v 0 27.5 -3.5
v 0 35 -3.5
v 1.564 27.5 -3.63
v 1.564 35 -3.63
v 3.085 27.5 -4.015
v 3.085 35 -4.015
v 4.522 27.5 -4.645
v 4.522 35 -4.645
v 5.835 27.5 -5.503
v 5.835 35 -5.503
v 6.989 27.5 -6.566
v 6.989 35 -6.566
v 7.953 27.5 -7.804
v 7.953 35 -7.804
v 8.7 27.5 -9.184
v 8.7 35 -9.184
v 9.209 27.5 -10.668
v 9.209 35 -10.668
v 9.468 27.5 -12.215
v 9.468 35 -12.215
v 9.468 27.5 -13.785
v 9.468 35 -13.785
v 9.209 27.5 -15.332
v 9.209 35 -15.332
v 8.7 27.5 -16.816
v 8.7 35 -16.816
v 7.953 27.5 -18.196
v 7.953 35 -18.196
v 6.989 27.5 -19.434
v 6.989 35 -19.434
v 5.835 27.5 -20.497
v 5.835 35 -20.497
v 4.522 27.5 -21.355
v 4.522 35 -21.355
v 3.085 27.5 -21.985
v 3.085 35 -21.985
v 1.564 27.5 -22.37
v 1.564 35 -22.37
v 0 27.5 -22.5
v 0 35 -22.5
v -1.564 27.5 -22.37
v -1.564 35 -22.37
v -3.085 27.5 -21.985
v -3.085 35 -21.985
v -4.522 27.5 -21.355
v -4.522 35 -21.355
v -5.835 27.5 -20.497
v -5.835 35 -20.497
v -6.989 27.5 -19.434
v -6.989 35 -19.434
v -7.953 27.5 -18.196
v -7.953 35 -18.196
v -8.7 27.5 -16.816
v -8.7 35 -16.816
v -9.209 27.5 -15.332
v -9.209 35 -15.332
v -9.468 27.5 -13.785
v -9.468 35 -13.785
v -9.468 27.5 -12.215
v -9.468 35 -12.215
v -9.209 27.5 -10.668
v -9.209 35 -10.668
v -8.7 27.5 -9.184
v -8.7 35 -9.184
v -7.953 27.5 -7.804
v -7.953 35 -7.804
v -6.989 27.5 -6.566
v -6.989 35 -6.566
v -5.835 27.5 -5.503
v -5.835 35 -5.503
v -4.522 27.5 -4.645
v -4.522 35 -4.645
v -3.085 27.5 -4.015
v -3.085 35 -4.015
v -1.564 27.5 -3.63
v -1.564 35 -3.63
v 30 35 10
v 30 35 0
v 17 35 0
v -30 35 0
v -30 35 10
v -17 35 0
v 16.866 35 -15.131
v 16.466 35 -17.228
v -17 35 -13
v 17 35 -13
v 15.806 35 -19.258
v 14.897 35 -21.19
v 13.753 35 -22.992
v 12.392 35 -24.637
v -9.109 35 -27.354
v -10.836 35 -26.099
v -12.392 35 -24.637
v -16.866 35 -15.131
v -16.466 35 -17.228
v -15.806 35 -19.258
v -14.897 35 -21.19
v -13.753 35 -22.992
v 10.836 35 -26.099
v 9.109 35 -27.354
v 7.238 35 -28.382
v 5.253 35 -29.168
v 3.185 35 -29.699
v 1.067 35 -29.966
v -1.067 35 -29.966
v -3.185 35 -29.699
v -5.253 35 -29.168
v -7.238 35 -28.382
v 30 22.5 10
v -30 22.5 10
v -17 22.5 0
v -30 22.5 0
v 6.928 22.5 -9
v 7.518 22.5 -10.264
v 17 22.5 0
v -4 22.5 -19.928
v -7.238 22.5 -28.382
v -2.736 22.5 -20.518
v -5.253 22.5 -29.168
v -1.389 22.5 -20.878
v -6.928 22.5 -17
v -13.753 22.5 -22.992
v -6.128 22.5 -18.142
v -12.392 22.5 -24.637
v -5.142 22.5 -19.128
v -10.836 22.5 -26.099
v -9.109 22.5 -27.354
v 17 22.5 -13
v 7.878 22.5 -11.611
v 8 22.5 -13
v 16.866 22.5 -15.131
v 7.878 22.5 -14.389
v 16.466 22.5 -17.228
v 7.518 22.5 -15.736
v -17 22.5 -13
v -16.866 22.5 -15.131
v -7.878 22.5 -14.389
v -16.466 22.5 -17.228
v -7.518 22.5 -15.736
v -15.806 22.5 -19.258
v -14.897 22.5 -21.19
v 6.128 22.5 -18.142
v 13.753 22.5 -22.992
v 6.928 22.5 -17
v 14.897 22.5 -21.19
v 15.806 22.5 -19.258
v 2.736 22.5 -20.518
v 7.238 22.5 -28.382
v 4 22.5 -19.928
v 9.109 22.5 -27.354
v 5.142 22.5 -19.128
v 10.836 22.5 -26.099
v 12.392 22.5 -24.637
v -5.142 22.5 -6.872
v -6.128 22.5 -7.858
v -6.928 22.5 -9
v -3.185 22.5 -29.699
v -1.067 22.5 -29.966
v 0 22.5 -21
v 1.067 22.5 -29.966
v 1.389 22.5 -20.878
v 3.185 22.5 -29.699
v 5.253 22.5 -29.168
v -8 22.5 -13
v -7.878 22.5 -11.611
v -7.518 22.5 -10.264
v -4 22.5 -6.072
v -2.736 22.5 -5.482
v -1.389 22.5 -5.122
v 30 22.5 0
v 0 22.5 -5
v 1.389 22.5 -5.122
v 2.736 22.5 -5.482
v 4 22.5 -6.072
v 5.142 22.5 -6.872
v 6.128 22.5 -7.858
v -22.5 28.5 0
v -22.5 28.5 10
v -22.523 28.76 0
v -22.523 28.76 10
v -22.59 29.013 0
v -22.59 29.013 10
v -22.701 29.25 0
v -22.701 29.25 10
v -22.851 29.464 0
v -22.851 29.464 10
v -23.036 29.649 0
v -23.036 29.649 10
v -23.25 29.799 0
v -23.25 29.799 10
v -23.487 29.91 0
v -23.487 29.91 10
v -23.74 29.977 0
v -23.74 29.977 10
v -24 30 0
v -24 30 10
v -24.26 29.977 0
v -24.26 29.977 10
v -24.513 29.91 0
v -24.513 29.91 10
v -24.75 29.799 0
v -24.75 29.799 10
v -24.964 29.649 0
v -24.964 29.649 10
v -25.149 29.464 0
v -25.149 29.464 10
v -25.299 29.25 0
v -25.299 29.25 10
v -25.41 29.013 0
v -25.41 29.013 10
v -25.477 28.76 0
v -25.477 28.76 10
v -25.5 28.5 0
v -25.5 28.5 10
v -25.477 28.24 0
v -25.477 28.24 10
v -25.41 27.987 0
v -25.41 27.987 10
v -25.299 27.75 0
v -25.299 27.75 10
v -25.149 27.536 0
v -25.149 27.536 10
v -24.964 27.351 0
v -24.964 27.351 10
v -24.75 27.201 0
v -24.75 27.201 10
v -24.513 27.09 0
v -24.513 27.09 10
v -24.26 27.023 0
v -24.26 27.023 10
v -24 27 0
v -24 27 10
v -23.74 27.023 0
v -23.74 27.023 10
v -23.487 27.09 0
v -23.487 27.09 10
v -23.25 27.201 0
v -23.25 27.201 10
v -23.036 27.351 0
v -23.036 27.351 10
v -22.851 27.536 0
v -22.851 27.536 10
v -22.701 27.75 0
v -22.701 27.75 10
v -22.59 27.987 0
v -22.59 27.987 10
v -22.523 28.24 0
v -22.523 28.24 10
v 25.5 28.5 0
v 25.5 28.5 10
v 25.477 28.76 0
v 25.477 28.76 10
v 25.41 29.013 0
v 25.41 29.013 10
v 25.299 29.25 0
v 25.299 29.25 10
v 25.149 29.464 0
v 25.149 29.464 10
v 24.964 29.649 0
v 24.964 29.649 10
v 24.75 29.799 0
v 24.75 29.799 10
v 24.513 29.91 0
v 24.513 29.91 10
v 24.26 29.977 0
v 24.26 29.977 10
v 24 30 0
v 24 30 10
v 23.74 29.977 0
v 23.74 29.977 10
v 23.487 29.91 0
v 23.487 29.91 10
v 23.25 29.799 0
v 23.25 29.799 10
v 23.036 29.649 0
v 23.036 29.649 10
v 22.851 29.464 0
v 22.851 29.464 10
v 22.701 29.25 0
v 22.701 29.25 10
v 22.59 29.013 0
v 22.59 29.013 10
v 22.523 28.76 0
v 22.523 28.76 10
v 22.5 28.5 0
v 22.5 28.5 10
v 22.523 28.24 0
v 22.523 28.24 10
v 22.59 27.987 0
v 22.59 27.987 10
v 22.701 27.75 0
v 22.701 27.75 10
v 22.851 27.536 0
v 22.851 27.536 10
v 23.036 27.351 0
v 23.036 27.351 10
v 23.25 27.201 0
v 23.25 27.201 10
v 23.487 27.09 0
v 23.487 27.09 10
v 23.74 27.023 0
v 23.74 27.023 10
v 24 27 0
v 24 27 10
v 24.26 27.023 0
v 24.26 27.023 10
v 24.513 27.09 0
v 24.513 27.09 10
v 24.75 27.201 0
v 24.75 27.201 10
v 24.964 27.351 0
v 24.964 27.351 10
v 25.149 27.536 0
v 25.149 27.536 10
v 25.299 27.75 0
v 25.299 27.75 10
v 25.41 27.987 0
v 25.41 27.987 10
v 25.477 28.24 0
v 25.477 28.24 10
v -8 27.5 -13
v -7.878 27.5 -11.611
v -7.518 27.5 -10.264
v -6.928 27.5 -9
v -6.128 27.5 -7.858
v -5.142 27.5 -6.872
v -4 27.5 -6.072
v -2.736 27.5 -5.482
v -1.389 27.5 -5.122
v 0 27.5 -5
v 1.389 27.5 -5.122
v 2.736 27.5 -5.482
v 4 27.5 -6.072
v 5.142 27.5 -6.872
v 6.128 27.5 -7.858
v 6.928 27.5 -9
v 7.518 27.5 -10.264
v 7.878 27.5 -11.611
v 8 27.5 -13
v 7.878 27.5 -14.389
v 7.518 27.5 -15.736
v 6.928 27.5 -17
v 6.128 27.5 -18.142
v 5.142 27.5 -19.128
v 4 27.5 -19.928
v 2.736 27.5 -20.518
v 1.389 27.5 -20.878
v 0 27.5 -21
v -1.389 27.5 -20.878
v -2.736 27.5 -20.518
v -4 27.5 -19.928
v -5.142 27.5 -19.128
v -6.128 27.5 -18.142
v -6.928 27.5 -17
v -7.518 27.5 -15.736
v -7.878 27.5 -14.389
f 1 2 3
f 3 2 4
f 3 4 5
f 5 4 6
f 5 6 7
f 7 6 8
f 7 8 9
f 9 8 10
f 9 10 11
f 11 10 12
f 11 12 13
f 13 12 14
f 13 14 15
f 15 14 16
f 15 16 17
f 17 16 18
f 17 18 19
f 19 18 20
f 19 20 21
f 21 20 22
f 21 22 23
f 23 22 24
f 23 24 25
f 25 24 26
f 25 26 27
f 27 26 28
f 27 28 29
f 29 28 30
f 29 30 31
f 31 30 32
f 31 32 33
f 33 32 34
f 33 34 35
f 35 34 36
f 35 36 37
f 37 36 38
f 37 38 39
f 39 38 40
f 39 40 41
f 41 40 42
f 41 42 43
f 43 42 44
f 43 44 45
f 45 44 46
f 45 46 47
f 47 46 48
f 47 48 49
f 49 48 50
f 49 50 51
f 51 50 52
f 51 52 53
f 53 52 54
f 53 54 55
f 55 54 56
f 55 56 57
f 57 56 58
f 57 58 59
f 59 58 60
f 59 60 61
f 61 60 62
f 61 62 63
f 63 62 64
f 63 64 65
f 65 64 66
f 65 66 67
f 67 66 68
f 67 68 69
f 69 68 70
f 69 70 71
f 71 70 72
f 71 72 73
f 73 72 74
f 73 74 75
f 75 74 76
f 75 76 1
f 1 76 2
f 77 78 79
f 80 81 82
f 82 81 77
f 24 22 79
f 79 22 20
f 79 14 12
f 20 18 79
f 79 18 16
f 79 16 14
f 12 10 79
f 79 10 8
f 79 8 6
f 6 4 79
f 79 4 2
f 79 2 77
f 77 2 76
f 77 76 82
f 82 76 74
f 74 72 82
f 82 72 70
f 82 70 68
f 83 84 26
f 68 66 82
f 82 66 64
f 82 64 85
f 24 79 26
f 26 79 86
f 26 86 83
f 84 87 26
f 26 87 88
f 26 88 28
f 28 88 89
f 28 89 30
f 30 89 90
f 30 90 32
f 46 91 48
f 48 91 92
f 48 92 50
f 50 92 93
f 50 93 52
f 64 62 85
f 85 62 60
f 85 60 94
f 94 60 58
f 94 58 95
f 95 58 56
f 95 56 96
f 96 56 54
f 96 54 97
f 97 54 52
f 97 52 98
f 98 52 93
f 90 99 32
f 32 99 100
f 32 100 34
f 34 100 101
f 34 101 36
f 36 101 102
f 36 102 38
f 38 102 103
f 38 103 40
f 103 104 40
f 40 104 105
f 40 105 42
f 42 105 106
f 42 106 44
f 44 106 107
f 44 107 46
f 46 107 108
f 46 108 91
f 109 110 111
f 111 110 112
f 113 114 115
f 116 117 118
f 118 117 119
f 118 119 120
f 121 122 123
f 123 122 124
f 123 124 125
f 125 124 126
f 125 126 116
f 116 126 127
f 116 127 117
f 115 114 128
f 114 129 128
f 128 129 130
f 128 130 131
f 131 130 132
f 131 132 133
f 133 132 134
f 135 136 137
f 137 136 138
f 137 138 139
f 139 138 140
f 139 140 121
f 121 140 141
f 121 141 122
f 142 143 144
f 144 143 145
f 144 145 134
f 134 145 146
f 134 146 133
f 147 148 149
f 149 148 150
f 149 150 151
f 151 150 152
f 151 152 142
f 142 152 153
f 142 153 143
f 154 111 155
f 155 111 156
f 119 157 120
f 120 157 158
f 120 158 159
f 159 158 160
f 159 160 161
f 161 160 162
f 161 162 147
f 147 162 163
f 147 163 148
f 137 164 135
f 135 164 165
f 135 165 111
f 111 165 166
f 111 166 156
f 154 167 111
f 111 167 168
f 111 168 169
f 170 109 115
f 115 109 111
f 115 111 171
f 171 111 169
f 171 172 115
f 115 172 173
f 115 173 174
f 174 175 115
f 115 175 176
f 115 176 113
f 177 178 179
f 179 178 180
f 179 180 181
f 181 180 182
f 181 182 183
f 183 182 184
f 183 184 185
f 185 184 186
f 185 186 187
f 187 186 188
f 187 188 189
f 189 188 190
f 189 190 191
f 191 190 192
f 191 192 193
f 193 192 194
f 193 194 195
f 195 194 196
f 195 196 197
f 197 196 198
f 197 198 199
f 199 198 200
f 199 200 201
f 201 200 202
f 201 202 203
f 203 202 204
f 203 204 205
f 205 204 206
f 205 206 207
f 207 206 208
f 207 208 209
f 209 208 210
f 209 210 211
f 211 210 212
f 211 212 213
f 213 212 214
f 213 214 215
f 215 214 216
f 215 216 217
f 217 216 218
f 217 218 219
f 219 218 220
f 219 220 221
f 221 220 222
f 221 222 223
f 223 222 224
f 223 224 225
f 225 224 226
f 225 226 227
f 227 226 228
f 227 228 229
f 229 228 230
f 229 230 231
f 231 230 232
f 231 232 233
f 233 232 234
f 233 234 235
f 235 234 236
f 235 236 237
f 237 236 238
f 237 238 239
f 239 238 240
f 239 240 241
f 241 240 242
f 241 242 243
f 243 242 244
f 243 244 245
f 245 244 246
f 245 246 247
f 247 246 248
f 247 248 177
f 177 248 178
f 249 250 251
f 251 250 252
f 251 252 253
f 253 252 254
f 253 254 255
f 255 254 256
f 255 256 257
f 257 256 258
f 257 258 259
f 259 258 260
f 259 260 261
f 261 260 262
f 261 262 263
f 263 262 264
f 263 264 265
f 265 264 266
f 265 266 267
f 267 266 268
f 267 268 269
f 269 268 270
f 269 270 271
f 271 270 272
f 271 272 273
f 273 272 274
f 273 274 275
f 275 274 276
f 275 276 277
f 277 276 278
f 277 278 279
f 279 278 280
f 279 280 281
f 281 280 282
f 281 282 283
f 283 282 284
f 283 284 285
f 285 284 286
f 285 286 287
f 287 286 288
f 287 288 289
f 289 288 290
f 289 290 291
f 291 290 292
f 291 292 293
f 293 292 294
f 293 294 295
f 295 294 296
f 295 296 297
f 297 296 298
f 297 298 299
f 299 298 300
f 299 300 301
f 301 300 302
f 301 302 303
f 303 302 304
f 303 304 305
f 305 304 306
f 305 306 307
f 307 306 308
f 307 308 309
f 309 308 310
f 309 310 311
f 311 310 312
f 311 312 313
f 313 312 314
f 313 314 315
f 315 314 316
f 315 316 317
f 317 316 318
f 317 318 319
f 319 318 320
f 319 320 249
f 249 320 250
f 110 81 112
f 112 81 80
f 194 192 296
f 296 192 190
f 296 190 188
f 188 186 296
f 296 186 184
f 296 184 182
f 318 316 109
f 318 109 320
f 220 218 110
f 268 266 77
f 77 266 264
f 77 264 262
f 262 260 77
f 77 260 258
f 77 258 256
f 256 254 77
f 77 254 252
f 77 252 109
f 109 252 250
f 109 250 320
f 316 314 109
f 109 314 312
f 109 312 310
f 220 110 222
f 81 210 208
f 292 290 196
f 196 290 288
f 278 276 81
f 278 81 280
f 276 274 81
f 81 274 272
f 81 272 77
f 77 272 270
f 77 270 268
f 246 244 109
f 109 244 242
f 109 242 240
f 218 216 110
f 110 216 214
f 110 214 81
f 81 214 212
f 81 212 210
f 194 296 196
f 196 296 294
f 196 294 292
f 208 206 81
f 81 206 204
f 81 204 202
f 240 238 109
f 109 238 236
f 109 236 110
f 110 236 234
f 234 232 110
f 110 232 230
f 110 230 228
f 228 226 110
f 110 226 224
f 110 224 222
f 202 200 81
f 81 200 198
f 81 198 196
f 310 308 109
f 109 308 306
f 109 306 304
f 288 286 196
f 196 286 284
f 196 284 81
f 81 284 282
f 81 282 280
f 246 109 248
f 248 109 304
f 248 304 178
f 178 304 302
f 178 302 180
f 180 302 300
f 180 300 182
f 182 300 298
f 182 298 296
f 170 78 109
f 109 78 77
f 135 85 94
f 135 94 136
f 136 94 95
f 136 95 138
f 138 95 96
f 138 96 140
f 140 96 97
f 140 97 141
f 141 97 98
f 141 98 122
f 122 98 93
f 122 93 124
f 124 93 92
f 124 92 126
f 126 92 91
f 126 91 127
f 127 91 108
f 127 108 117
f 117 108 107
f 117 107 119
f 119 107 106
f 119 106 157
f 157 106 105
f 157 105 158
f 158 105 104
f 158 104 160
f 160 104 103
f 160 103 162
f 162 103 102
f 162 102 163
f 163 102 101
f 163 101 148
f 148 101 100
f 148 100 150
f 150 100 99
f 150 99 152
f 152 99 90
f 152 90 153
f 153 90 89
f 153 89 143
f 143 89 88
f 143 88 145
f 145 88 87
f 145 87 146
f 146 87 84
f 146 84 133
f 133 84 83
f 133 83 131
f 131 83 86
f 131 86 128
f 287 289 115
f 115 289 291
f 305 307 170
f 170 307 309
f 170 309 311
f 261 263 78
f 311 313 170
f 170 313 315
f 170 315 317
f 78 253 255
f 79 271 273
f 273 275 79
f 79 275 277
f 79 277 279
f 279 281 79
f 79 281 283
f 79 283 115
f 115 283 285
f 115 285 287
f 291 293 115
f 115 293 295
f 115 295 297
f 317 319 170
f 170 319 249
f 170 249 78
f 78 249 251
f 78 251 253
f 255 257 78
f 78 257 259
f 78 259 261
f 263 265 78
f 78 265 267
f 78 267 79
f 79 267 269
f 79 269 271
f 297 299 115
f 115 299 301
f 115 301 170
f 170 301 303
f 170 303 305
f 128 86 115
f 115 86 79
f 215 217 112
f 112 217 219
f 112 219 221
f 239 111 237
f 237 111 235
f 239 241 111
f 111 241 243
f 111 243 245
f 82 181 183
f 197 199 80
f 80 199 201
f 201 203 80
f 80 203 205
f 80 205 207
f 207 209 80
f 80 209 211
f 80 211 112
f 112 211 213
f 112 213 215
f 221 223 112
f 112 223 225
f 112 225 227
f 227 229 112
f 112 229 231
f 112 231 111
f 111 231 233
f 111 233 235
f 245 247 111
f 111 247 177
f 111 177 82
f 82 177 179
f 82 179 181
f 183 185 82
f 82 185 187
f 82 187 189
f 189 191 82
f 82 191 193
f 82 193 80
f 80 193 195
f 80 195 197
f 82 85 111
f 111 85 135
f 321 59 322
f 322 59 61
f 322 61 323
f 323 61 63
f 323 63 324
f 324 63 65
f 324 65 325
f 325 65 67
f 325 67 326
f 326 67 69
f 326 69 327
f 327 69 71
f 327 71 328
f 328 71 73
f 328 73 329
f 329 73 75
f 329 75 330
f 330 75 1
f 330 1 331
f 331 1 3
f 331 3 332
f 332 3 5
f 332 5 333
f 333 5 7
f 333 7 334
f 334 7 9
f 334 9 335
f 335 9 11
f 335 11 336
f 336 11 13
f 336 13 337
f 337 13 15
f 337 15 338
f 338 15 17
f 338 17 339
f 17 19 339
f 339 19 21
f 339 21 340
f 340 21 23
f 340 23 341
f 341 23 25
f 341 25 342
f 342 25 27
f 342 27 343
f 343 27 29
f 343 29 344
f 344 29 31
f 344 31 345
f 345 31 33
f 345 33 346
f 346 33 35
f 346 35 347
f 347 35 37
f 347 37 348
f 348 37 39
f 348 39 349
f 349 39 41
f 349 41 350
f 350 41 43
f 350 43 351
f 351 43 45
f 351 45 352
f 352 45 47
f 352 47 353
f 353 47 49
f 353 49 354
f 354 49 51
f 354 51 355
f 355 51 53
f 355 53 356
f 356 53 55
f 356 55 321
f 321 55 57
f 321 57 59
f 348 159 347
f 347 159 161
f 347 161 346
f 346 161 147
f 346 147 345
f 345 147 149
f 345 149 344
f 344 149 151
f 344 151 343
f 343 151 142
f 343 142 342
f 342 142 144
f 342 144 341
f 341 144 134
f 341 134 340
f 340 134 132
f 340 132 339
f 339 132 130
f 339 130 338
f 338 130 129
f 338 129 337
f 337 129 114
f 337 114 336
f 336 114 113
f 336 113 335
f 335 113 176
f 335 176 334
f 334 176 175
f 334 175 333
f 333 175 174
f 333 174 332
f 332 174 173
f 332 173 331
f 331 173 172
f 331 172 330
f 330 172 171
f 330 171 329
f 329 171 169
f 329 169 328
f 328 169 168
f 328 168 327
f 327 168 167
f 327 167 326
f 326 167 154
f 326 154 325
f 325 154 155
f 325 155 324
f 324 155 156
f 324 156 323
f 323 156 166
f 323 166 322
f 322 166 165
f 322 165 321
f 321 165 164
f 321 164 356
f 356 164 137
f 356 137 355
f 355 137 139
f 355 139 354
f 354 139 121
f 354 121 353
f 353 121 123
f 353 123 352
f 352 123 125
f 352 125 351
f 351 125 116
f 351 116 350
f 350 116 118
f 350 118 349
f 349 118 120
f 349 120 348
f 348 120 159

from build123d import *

# Parameters (mm, degrees)
SKETCH_1_W          = 60
SKETCH_1_H          = 70
EXTRUDE_1_DEPTH     = 10
SKETCH_2_R          = 3
CUT_EXTRUDE_1_DEPTH = 48.16990566
CUT_EXTRUDE_START   = -4
SKETCH_3_R          = 7.5
SKETCH_3_R_2        = 3
CUT_EXTRUDE_2_DEPTH = 4
SKETCH_4_R          = 5
CUT_EXTRUDE_3_DEPTH = 1
EXTRUDE_2_DEPTH     = 12.5
SKETCH_7_R          = 9.5
CUT_EXTRUDE_4_DEPTH = 12.5
CUT_EXTRUDE_5_DEPTH = 57.5
SKETCH_9_R          = 1.5
CUT_EXTRUDE_6_DEPTH = 62.032778079
SKETCH_10_W         = 13
SKETCH_10_H         = 12.5
CUT_EXTRUDE_7_DEPTH = 13
SKETCH_11_W         = 13
SKETCH_11_H         = 12.5
CUT_EXTRUDE_8_DEPTH = 13
EXTRUDE_START       = -5
SKETCH_12_R         = 9.5
SKETCH_12_R_2       = 8
EXTRUDE_3_DEPTH     = 5


with BuildPart() as part:
    # 草图1 → 凸台-拉伸1 (new body)
    with BuildSketch(Plane.XY):
        Rectangle(SKETCH_1_W, SKETCH_1_H)
    extrude(amount=EXTRUDE_1_DEPTH)

    # 草图2 → 切除-拉伸1 (cut, through all)
    with BuildSketch(Plane.XY.offset(10)):
        with Locations((-8, 15)):
            Circle(SKETCH_2_R)
        with Locations((7, 15)):
            Circle(SKETCH_2_R)
        with Locations((-8, -15)):
            Circle(SKETCH_2_R)
        with Locations((7, -15)):
            Circle(SKETCH_2_R)
        with Locations((22, 15)):
            Circle(SKETCH_2_R)
        with Locations((22, -15)):
            Circle(SKETCH_2_R)
    extrude(amount=-CUT_EXTRUDE_1_DEPTH, mode=Mode.SUBTRACT)

    # 草图3 → 切除-拉伸2 (cut)
    # profile 1 of 2: a face of its own
    with BuildSketch(Plane(origin=(0, 0, 0), x_dir=(-1, 0, 0), z_dir=(0, 0, -1)).offset(CUT_EXTRUDE_START)):
        with Locations((8, 15)):
            Circle(SKETCH_3_R)
        with Locations(Location((8, 15, 0), (0, 0, 180))):
            Circle(SKETCH_3_R_2, mode=Mode.SUBTRACT)
    # profile 2 of 2: a face of its own
    with BuildSketch(Plane(origin=(0, 0, 0), x_dir=(-1, 0, 0), z_dir=(0, 0, -1)).offset(CUT_EXTRUDE_START)):
        with BuildLine():
            ThreePointArc((8, 7.5), (0.5, 15), (8, 22.5))
            Line((8, 22.5), (-30, 22.5))
            Line((-30, 22.5), (-30, 7.5))
            Line((-30, 7.5), (8, 7.5))
        make_face()
        with Locations(Location((-7, 15, 0), (0, 0, 180))):
            Circle(SKETCH_3_R_2, mode=Mode.SUBTRACT)
    cut_extrude_2 = extrude(amount=CUT_EXTRUDE_2_DEPTH, mode=Mode.SUBTRACT)

    # 镜向1: 切除-拉伸2 across plane
    add(cut_extrude_2.mirror(Plane.ZX), mode=Mode.SUBTRACT)

    # 草图4 → 切除-拉伸3 (cut)
    with BuildSketch(Plane.XY.offset(10)):
        with Locations((-20, 0)):
            Circle(SKETCH_4_R)
        with BuildLine():
            ThreePointArc((-20, -5), (-25, 0), (-20, 5))
            Line((-20, 5), (-30, 5))
            Line((-30, 5), (-30, -5))
            Line((-30, -5), (-20, -5))
        make_face()
    extrude(amount=-CUT_EXTRUDE_3_DEPTH, mode=Mode.SUBTRACT)

    # 草图6 → 凸台-拉伸2 (add)
    with BuildSketch(Plane(origin=(0, 35, 0), x_dir=(1, 0, 0), z_dir=(0, 1, 0))):
        with BuildLine():
            ThreePointArc((30, 0), (20.807611845, 3.807611845), (17, 13))
            ThreePointArc((17, 13), (0, 30), (-17, 13))
            ThreePointArc((-17, 13), (-20.807611845, 3.807611845), (-30, 0))
            Line((-30, 0), (30, 0))
        make_face()
    extrude_2 = extrude(amount=-EXTRUDE_2_DEPTH)

    # 草图7 → 切除-拉伸4 (cut)
    with BuildSketch(Plane(origin=(0, 35, 0), x_dir=(1, 0, 0), z_dir=(0, 1, 0))):
        with Locations(Location((0, 13, 0), (0, 0, 270))):
            Circle(SKETCH_7_R)
    cut_extrude_4 = extrude(amount=-CUT_EXTRUDE_4_DEPTH, mode=Mode.SUBTRACT)

    # 镜向2: 凸台-拉伸2, 切除-拉伸4 across plane
    add(extrude_2.mirror(Plane.ZX))
    add(cut_extrude_4.mirror(Plane.ZX), mode=Mode.SUBTRACT)

    # 草图8 → 切除-拉伸5 (cut)
    with BuildSketch(Plane.XZ.offset(35)):
        with BuildLine():
            Line((-30, 10), (-30, 0))
            ThreePointArc((-30, 0), (-20.807611845, -3.807611845), (-17, -13))
            ThreePointArc((-17, -13), (0, -30), (17, -13))
            ThreePointArc((17, -13), (20.807611845, -3.807611845), (30, 0))
            Line((30, 0), (30, 10))
            Line((30, 10), (-30, 10))
        make_face()
    extrude(amount=-CUT_EXTRUDE_5_DEPTH, mode=Mode.SUBTRACT)

    # 草图9 → 切除-拉伸6 (cut, through all)
    with BuildSketch(Plane.XY.offset(10)):
        with Locations((-24, 28.5)):
            Circle(SKETCH_9_R)
        with Locations((24, 28.5)):
            Circle(SKETCH_9_R)
    extrude(amount=-CUT_EXTRUDE_6_DEPTH, mode=Mode.SUBTRACT)

    # 草图10 → 切除-拉伸7 (cut)
    with BuildSketch(Plane(origin=(30, 0, 0), x_dir=(0, 0, -1), z_dir=(1, 0, 0))):
        with Locations((6.5, 28.75)):
            Rectangle(SKETCH_10_W, SKETCH_10_H)
    extrude(amount=-CUT_EXTRUDE_7_DEPTH, mode=Mode.SUBTRACT)

    # 草图11 → 切除-拉伸8 (cut)
    with BuildSketch(Plane.ZY.offset(30)):
        with Locations((-6.5, 28.75)):
            Rectangle(SKETCH_11_W, SKETCH_11_H)
    extrude(amount=-CUT_EXTRUDE_8_DEPTH, mode=Mode.SUBTRACT)

    # 草图12 → 凸台-拉伸3 (add)
    with BuildSketch(Plane.XZ.offset(-22.5).offset(EXTRUDE_START)):
        with Locations(Location((0, -13, 0), (0, 0, 90))):
            Circle(SKETCH_12_R)
        with Locations(Location((0, -13, 0), (0, 0, 270))):
            Circle(SKETCH_12_R_2, mode=Mode.SUBTRACT)
    extrude(amount=EXTRUDE_3_DEPTH)


solid = part.part
